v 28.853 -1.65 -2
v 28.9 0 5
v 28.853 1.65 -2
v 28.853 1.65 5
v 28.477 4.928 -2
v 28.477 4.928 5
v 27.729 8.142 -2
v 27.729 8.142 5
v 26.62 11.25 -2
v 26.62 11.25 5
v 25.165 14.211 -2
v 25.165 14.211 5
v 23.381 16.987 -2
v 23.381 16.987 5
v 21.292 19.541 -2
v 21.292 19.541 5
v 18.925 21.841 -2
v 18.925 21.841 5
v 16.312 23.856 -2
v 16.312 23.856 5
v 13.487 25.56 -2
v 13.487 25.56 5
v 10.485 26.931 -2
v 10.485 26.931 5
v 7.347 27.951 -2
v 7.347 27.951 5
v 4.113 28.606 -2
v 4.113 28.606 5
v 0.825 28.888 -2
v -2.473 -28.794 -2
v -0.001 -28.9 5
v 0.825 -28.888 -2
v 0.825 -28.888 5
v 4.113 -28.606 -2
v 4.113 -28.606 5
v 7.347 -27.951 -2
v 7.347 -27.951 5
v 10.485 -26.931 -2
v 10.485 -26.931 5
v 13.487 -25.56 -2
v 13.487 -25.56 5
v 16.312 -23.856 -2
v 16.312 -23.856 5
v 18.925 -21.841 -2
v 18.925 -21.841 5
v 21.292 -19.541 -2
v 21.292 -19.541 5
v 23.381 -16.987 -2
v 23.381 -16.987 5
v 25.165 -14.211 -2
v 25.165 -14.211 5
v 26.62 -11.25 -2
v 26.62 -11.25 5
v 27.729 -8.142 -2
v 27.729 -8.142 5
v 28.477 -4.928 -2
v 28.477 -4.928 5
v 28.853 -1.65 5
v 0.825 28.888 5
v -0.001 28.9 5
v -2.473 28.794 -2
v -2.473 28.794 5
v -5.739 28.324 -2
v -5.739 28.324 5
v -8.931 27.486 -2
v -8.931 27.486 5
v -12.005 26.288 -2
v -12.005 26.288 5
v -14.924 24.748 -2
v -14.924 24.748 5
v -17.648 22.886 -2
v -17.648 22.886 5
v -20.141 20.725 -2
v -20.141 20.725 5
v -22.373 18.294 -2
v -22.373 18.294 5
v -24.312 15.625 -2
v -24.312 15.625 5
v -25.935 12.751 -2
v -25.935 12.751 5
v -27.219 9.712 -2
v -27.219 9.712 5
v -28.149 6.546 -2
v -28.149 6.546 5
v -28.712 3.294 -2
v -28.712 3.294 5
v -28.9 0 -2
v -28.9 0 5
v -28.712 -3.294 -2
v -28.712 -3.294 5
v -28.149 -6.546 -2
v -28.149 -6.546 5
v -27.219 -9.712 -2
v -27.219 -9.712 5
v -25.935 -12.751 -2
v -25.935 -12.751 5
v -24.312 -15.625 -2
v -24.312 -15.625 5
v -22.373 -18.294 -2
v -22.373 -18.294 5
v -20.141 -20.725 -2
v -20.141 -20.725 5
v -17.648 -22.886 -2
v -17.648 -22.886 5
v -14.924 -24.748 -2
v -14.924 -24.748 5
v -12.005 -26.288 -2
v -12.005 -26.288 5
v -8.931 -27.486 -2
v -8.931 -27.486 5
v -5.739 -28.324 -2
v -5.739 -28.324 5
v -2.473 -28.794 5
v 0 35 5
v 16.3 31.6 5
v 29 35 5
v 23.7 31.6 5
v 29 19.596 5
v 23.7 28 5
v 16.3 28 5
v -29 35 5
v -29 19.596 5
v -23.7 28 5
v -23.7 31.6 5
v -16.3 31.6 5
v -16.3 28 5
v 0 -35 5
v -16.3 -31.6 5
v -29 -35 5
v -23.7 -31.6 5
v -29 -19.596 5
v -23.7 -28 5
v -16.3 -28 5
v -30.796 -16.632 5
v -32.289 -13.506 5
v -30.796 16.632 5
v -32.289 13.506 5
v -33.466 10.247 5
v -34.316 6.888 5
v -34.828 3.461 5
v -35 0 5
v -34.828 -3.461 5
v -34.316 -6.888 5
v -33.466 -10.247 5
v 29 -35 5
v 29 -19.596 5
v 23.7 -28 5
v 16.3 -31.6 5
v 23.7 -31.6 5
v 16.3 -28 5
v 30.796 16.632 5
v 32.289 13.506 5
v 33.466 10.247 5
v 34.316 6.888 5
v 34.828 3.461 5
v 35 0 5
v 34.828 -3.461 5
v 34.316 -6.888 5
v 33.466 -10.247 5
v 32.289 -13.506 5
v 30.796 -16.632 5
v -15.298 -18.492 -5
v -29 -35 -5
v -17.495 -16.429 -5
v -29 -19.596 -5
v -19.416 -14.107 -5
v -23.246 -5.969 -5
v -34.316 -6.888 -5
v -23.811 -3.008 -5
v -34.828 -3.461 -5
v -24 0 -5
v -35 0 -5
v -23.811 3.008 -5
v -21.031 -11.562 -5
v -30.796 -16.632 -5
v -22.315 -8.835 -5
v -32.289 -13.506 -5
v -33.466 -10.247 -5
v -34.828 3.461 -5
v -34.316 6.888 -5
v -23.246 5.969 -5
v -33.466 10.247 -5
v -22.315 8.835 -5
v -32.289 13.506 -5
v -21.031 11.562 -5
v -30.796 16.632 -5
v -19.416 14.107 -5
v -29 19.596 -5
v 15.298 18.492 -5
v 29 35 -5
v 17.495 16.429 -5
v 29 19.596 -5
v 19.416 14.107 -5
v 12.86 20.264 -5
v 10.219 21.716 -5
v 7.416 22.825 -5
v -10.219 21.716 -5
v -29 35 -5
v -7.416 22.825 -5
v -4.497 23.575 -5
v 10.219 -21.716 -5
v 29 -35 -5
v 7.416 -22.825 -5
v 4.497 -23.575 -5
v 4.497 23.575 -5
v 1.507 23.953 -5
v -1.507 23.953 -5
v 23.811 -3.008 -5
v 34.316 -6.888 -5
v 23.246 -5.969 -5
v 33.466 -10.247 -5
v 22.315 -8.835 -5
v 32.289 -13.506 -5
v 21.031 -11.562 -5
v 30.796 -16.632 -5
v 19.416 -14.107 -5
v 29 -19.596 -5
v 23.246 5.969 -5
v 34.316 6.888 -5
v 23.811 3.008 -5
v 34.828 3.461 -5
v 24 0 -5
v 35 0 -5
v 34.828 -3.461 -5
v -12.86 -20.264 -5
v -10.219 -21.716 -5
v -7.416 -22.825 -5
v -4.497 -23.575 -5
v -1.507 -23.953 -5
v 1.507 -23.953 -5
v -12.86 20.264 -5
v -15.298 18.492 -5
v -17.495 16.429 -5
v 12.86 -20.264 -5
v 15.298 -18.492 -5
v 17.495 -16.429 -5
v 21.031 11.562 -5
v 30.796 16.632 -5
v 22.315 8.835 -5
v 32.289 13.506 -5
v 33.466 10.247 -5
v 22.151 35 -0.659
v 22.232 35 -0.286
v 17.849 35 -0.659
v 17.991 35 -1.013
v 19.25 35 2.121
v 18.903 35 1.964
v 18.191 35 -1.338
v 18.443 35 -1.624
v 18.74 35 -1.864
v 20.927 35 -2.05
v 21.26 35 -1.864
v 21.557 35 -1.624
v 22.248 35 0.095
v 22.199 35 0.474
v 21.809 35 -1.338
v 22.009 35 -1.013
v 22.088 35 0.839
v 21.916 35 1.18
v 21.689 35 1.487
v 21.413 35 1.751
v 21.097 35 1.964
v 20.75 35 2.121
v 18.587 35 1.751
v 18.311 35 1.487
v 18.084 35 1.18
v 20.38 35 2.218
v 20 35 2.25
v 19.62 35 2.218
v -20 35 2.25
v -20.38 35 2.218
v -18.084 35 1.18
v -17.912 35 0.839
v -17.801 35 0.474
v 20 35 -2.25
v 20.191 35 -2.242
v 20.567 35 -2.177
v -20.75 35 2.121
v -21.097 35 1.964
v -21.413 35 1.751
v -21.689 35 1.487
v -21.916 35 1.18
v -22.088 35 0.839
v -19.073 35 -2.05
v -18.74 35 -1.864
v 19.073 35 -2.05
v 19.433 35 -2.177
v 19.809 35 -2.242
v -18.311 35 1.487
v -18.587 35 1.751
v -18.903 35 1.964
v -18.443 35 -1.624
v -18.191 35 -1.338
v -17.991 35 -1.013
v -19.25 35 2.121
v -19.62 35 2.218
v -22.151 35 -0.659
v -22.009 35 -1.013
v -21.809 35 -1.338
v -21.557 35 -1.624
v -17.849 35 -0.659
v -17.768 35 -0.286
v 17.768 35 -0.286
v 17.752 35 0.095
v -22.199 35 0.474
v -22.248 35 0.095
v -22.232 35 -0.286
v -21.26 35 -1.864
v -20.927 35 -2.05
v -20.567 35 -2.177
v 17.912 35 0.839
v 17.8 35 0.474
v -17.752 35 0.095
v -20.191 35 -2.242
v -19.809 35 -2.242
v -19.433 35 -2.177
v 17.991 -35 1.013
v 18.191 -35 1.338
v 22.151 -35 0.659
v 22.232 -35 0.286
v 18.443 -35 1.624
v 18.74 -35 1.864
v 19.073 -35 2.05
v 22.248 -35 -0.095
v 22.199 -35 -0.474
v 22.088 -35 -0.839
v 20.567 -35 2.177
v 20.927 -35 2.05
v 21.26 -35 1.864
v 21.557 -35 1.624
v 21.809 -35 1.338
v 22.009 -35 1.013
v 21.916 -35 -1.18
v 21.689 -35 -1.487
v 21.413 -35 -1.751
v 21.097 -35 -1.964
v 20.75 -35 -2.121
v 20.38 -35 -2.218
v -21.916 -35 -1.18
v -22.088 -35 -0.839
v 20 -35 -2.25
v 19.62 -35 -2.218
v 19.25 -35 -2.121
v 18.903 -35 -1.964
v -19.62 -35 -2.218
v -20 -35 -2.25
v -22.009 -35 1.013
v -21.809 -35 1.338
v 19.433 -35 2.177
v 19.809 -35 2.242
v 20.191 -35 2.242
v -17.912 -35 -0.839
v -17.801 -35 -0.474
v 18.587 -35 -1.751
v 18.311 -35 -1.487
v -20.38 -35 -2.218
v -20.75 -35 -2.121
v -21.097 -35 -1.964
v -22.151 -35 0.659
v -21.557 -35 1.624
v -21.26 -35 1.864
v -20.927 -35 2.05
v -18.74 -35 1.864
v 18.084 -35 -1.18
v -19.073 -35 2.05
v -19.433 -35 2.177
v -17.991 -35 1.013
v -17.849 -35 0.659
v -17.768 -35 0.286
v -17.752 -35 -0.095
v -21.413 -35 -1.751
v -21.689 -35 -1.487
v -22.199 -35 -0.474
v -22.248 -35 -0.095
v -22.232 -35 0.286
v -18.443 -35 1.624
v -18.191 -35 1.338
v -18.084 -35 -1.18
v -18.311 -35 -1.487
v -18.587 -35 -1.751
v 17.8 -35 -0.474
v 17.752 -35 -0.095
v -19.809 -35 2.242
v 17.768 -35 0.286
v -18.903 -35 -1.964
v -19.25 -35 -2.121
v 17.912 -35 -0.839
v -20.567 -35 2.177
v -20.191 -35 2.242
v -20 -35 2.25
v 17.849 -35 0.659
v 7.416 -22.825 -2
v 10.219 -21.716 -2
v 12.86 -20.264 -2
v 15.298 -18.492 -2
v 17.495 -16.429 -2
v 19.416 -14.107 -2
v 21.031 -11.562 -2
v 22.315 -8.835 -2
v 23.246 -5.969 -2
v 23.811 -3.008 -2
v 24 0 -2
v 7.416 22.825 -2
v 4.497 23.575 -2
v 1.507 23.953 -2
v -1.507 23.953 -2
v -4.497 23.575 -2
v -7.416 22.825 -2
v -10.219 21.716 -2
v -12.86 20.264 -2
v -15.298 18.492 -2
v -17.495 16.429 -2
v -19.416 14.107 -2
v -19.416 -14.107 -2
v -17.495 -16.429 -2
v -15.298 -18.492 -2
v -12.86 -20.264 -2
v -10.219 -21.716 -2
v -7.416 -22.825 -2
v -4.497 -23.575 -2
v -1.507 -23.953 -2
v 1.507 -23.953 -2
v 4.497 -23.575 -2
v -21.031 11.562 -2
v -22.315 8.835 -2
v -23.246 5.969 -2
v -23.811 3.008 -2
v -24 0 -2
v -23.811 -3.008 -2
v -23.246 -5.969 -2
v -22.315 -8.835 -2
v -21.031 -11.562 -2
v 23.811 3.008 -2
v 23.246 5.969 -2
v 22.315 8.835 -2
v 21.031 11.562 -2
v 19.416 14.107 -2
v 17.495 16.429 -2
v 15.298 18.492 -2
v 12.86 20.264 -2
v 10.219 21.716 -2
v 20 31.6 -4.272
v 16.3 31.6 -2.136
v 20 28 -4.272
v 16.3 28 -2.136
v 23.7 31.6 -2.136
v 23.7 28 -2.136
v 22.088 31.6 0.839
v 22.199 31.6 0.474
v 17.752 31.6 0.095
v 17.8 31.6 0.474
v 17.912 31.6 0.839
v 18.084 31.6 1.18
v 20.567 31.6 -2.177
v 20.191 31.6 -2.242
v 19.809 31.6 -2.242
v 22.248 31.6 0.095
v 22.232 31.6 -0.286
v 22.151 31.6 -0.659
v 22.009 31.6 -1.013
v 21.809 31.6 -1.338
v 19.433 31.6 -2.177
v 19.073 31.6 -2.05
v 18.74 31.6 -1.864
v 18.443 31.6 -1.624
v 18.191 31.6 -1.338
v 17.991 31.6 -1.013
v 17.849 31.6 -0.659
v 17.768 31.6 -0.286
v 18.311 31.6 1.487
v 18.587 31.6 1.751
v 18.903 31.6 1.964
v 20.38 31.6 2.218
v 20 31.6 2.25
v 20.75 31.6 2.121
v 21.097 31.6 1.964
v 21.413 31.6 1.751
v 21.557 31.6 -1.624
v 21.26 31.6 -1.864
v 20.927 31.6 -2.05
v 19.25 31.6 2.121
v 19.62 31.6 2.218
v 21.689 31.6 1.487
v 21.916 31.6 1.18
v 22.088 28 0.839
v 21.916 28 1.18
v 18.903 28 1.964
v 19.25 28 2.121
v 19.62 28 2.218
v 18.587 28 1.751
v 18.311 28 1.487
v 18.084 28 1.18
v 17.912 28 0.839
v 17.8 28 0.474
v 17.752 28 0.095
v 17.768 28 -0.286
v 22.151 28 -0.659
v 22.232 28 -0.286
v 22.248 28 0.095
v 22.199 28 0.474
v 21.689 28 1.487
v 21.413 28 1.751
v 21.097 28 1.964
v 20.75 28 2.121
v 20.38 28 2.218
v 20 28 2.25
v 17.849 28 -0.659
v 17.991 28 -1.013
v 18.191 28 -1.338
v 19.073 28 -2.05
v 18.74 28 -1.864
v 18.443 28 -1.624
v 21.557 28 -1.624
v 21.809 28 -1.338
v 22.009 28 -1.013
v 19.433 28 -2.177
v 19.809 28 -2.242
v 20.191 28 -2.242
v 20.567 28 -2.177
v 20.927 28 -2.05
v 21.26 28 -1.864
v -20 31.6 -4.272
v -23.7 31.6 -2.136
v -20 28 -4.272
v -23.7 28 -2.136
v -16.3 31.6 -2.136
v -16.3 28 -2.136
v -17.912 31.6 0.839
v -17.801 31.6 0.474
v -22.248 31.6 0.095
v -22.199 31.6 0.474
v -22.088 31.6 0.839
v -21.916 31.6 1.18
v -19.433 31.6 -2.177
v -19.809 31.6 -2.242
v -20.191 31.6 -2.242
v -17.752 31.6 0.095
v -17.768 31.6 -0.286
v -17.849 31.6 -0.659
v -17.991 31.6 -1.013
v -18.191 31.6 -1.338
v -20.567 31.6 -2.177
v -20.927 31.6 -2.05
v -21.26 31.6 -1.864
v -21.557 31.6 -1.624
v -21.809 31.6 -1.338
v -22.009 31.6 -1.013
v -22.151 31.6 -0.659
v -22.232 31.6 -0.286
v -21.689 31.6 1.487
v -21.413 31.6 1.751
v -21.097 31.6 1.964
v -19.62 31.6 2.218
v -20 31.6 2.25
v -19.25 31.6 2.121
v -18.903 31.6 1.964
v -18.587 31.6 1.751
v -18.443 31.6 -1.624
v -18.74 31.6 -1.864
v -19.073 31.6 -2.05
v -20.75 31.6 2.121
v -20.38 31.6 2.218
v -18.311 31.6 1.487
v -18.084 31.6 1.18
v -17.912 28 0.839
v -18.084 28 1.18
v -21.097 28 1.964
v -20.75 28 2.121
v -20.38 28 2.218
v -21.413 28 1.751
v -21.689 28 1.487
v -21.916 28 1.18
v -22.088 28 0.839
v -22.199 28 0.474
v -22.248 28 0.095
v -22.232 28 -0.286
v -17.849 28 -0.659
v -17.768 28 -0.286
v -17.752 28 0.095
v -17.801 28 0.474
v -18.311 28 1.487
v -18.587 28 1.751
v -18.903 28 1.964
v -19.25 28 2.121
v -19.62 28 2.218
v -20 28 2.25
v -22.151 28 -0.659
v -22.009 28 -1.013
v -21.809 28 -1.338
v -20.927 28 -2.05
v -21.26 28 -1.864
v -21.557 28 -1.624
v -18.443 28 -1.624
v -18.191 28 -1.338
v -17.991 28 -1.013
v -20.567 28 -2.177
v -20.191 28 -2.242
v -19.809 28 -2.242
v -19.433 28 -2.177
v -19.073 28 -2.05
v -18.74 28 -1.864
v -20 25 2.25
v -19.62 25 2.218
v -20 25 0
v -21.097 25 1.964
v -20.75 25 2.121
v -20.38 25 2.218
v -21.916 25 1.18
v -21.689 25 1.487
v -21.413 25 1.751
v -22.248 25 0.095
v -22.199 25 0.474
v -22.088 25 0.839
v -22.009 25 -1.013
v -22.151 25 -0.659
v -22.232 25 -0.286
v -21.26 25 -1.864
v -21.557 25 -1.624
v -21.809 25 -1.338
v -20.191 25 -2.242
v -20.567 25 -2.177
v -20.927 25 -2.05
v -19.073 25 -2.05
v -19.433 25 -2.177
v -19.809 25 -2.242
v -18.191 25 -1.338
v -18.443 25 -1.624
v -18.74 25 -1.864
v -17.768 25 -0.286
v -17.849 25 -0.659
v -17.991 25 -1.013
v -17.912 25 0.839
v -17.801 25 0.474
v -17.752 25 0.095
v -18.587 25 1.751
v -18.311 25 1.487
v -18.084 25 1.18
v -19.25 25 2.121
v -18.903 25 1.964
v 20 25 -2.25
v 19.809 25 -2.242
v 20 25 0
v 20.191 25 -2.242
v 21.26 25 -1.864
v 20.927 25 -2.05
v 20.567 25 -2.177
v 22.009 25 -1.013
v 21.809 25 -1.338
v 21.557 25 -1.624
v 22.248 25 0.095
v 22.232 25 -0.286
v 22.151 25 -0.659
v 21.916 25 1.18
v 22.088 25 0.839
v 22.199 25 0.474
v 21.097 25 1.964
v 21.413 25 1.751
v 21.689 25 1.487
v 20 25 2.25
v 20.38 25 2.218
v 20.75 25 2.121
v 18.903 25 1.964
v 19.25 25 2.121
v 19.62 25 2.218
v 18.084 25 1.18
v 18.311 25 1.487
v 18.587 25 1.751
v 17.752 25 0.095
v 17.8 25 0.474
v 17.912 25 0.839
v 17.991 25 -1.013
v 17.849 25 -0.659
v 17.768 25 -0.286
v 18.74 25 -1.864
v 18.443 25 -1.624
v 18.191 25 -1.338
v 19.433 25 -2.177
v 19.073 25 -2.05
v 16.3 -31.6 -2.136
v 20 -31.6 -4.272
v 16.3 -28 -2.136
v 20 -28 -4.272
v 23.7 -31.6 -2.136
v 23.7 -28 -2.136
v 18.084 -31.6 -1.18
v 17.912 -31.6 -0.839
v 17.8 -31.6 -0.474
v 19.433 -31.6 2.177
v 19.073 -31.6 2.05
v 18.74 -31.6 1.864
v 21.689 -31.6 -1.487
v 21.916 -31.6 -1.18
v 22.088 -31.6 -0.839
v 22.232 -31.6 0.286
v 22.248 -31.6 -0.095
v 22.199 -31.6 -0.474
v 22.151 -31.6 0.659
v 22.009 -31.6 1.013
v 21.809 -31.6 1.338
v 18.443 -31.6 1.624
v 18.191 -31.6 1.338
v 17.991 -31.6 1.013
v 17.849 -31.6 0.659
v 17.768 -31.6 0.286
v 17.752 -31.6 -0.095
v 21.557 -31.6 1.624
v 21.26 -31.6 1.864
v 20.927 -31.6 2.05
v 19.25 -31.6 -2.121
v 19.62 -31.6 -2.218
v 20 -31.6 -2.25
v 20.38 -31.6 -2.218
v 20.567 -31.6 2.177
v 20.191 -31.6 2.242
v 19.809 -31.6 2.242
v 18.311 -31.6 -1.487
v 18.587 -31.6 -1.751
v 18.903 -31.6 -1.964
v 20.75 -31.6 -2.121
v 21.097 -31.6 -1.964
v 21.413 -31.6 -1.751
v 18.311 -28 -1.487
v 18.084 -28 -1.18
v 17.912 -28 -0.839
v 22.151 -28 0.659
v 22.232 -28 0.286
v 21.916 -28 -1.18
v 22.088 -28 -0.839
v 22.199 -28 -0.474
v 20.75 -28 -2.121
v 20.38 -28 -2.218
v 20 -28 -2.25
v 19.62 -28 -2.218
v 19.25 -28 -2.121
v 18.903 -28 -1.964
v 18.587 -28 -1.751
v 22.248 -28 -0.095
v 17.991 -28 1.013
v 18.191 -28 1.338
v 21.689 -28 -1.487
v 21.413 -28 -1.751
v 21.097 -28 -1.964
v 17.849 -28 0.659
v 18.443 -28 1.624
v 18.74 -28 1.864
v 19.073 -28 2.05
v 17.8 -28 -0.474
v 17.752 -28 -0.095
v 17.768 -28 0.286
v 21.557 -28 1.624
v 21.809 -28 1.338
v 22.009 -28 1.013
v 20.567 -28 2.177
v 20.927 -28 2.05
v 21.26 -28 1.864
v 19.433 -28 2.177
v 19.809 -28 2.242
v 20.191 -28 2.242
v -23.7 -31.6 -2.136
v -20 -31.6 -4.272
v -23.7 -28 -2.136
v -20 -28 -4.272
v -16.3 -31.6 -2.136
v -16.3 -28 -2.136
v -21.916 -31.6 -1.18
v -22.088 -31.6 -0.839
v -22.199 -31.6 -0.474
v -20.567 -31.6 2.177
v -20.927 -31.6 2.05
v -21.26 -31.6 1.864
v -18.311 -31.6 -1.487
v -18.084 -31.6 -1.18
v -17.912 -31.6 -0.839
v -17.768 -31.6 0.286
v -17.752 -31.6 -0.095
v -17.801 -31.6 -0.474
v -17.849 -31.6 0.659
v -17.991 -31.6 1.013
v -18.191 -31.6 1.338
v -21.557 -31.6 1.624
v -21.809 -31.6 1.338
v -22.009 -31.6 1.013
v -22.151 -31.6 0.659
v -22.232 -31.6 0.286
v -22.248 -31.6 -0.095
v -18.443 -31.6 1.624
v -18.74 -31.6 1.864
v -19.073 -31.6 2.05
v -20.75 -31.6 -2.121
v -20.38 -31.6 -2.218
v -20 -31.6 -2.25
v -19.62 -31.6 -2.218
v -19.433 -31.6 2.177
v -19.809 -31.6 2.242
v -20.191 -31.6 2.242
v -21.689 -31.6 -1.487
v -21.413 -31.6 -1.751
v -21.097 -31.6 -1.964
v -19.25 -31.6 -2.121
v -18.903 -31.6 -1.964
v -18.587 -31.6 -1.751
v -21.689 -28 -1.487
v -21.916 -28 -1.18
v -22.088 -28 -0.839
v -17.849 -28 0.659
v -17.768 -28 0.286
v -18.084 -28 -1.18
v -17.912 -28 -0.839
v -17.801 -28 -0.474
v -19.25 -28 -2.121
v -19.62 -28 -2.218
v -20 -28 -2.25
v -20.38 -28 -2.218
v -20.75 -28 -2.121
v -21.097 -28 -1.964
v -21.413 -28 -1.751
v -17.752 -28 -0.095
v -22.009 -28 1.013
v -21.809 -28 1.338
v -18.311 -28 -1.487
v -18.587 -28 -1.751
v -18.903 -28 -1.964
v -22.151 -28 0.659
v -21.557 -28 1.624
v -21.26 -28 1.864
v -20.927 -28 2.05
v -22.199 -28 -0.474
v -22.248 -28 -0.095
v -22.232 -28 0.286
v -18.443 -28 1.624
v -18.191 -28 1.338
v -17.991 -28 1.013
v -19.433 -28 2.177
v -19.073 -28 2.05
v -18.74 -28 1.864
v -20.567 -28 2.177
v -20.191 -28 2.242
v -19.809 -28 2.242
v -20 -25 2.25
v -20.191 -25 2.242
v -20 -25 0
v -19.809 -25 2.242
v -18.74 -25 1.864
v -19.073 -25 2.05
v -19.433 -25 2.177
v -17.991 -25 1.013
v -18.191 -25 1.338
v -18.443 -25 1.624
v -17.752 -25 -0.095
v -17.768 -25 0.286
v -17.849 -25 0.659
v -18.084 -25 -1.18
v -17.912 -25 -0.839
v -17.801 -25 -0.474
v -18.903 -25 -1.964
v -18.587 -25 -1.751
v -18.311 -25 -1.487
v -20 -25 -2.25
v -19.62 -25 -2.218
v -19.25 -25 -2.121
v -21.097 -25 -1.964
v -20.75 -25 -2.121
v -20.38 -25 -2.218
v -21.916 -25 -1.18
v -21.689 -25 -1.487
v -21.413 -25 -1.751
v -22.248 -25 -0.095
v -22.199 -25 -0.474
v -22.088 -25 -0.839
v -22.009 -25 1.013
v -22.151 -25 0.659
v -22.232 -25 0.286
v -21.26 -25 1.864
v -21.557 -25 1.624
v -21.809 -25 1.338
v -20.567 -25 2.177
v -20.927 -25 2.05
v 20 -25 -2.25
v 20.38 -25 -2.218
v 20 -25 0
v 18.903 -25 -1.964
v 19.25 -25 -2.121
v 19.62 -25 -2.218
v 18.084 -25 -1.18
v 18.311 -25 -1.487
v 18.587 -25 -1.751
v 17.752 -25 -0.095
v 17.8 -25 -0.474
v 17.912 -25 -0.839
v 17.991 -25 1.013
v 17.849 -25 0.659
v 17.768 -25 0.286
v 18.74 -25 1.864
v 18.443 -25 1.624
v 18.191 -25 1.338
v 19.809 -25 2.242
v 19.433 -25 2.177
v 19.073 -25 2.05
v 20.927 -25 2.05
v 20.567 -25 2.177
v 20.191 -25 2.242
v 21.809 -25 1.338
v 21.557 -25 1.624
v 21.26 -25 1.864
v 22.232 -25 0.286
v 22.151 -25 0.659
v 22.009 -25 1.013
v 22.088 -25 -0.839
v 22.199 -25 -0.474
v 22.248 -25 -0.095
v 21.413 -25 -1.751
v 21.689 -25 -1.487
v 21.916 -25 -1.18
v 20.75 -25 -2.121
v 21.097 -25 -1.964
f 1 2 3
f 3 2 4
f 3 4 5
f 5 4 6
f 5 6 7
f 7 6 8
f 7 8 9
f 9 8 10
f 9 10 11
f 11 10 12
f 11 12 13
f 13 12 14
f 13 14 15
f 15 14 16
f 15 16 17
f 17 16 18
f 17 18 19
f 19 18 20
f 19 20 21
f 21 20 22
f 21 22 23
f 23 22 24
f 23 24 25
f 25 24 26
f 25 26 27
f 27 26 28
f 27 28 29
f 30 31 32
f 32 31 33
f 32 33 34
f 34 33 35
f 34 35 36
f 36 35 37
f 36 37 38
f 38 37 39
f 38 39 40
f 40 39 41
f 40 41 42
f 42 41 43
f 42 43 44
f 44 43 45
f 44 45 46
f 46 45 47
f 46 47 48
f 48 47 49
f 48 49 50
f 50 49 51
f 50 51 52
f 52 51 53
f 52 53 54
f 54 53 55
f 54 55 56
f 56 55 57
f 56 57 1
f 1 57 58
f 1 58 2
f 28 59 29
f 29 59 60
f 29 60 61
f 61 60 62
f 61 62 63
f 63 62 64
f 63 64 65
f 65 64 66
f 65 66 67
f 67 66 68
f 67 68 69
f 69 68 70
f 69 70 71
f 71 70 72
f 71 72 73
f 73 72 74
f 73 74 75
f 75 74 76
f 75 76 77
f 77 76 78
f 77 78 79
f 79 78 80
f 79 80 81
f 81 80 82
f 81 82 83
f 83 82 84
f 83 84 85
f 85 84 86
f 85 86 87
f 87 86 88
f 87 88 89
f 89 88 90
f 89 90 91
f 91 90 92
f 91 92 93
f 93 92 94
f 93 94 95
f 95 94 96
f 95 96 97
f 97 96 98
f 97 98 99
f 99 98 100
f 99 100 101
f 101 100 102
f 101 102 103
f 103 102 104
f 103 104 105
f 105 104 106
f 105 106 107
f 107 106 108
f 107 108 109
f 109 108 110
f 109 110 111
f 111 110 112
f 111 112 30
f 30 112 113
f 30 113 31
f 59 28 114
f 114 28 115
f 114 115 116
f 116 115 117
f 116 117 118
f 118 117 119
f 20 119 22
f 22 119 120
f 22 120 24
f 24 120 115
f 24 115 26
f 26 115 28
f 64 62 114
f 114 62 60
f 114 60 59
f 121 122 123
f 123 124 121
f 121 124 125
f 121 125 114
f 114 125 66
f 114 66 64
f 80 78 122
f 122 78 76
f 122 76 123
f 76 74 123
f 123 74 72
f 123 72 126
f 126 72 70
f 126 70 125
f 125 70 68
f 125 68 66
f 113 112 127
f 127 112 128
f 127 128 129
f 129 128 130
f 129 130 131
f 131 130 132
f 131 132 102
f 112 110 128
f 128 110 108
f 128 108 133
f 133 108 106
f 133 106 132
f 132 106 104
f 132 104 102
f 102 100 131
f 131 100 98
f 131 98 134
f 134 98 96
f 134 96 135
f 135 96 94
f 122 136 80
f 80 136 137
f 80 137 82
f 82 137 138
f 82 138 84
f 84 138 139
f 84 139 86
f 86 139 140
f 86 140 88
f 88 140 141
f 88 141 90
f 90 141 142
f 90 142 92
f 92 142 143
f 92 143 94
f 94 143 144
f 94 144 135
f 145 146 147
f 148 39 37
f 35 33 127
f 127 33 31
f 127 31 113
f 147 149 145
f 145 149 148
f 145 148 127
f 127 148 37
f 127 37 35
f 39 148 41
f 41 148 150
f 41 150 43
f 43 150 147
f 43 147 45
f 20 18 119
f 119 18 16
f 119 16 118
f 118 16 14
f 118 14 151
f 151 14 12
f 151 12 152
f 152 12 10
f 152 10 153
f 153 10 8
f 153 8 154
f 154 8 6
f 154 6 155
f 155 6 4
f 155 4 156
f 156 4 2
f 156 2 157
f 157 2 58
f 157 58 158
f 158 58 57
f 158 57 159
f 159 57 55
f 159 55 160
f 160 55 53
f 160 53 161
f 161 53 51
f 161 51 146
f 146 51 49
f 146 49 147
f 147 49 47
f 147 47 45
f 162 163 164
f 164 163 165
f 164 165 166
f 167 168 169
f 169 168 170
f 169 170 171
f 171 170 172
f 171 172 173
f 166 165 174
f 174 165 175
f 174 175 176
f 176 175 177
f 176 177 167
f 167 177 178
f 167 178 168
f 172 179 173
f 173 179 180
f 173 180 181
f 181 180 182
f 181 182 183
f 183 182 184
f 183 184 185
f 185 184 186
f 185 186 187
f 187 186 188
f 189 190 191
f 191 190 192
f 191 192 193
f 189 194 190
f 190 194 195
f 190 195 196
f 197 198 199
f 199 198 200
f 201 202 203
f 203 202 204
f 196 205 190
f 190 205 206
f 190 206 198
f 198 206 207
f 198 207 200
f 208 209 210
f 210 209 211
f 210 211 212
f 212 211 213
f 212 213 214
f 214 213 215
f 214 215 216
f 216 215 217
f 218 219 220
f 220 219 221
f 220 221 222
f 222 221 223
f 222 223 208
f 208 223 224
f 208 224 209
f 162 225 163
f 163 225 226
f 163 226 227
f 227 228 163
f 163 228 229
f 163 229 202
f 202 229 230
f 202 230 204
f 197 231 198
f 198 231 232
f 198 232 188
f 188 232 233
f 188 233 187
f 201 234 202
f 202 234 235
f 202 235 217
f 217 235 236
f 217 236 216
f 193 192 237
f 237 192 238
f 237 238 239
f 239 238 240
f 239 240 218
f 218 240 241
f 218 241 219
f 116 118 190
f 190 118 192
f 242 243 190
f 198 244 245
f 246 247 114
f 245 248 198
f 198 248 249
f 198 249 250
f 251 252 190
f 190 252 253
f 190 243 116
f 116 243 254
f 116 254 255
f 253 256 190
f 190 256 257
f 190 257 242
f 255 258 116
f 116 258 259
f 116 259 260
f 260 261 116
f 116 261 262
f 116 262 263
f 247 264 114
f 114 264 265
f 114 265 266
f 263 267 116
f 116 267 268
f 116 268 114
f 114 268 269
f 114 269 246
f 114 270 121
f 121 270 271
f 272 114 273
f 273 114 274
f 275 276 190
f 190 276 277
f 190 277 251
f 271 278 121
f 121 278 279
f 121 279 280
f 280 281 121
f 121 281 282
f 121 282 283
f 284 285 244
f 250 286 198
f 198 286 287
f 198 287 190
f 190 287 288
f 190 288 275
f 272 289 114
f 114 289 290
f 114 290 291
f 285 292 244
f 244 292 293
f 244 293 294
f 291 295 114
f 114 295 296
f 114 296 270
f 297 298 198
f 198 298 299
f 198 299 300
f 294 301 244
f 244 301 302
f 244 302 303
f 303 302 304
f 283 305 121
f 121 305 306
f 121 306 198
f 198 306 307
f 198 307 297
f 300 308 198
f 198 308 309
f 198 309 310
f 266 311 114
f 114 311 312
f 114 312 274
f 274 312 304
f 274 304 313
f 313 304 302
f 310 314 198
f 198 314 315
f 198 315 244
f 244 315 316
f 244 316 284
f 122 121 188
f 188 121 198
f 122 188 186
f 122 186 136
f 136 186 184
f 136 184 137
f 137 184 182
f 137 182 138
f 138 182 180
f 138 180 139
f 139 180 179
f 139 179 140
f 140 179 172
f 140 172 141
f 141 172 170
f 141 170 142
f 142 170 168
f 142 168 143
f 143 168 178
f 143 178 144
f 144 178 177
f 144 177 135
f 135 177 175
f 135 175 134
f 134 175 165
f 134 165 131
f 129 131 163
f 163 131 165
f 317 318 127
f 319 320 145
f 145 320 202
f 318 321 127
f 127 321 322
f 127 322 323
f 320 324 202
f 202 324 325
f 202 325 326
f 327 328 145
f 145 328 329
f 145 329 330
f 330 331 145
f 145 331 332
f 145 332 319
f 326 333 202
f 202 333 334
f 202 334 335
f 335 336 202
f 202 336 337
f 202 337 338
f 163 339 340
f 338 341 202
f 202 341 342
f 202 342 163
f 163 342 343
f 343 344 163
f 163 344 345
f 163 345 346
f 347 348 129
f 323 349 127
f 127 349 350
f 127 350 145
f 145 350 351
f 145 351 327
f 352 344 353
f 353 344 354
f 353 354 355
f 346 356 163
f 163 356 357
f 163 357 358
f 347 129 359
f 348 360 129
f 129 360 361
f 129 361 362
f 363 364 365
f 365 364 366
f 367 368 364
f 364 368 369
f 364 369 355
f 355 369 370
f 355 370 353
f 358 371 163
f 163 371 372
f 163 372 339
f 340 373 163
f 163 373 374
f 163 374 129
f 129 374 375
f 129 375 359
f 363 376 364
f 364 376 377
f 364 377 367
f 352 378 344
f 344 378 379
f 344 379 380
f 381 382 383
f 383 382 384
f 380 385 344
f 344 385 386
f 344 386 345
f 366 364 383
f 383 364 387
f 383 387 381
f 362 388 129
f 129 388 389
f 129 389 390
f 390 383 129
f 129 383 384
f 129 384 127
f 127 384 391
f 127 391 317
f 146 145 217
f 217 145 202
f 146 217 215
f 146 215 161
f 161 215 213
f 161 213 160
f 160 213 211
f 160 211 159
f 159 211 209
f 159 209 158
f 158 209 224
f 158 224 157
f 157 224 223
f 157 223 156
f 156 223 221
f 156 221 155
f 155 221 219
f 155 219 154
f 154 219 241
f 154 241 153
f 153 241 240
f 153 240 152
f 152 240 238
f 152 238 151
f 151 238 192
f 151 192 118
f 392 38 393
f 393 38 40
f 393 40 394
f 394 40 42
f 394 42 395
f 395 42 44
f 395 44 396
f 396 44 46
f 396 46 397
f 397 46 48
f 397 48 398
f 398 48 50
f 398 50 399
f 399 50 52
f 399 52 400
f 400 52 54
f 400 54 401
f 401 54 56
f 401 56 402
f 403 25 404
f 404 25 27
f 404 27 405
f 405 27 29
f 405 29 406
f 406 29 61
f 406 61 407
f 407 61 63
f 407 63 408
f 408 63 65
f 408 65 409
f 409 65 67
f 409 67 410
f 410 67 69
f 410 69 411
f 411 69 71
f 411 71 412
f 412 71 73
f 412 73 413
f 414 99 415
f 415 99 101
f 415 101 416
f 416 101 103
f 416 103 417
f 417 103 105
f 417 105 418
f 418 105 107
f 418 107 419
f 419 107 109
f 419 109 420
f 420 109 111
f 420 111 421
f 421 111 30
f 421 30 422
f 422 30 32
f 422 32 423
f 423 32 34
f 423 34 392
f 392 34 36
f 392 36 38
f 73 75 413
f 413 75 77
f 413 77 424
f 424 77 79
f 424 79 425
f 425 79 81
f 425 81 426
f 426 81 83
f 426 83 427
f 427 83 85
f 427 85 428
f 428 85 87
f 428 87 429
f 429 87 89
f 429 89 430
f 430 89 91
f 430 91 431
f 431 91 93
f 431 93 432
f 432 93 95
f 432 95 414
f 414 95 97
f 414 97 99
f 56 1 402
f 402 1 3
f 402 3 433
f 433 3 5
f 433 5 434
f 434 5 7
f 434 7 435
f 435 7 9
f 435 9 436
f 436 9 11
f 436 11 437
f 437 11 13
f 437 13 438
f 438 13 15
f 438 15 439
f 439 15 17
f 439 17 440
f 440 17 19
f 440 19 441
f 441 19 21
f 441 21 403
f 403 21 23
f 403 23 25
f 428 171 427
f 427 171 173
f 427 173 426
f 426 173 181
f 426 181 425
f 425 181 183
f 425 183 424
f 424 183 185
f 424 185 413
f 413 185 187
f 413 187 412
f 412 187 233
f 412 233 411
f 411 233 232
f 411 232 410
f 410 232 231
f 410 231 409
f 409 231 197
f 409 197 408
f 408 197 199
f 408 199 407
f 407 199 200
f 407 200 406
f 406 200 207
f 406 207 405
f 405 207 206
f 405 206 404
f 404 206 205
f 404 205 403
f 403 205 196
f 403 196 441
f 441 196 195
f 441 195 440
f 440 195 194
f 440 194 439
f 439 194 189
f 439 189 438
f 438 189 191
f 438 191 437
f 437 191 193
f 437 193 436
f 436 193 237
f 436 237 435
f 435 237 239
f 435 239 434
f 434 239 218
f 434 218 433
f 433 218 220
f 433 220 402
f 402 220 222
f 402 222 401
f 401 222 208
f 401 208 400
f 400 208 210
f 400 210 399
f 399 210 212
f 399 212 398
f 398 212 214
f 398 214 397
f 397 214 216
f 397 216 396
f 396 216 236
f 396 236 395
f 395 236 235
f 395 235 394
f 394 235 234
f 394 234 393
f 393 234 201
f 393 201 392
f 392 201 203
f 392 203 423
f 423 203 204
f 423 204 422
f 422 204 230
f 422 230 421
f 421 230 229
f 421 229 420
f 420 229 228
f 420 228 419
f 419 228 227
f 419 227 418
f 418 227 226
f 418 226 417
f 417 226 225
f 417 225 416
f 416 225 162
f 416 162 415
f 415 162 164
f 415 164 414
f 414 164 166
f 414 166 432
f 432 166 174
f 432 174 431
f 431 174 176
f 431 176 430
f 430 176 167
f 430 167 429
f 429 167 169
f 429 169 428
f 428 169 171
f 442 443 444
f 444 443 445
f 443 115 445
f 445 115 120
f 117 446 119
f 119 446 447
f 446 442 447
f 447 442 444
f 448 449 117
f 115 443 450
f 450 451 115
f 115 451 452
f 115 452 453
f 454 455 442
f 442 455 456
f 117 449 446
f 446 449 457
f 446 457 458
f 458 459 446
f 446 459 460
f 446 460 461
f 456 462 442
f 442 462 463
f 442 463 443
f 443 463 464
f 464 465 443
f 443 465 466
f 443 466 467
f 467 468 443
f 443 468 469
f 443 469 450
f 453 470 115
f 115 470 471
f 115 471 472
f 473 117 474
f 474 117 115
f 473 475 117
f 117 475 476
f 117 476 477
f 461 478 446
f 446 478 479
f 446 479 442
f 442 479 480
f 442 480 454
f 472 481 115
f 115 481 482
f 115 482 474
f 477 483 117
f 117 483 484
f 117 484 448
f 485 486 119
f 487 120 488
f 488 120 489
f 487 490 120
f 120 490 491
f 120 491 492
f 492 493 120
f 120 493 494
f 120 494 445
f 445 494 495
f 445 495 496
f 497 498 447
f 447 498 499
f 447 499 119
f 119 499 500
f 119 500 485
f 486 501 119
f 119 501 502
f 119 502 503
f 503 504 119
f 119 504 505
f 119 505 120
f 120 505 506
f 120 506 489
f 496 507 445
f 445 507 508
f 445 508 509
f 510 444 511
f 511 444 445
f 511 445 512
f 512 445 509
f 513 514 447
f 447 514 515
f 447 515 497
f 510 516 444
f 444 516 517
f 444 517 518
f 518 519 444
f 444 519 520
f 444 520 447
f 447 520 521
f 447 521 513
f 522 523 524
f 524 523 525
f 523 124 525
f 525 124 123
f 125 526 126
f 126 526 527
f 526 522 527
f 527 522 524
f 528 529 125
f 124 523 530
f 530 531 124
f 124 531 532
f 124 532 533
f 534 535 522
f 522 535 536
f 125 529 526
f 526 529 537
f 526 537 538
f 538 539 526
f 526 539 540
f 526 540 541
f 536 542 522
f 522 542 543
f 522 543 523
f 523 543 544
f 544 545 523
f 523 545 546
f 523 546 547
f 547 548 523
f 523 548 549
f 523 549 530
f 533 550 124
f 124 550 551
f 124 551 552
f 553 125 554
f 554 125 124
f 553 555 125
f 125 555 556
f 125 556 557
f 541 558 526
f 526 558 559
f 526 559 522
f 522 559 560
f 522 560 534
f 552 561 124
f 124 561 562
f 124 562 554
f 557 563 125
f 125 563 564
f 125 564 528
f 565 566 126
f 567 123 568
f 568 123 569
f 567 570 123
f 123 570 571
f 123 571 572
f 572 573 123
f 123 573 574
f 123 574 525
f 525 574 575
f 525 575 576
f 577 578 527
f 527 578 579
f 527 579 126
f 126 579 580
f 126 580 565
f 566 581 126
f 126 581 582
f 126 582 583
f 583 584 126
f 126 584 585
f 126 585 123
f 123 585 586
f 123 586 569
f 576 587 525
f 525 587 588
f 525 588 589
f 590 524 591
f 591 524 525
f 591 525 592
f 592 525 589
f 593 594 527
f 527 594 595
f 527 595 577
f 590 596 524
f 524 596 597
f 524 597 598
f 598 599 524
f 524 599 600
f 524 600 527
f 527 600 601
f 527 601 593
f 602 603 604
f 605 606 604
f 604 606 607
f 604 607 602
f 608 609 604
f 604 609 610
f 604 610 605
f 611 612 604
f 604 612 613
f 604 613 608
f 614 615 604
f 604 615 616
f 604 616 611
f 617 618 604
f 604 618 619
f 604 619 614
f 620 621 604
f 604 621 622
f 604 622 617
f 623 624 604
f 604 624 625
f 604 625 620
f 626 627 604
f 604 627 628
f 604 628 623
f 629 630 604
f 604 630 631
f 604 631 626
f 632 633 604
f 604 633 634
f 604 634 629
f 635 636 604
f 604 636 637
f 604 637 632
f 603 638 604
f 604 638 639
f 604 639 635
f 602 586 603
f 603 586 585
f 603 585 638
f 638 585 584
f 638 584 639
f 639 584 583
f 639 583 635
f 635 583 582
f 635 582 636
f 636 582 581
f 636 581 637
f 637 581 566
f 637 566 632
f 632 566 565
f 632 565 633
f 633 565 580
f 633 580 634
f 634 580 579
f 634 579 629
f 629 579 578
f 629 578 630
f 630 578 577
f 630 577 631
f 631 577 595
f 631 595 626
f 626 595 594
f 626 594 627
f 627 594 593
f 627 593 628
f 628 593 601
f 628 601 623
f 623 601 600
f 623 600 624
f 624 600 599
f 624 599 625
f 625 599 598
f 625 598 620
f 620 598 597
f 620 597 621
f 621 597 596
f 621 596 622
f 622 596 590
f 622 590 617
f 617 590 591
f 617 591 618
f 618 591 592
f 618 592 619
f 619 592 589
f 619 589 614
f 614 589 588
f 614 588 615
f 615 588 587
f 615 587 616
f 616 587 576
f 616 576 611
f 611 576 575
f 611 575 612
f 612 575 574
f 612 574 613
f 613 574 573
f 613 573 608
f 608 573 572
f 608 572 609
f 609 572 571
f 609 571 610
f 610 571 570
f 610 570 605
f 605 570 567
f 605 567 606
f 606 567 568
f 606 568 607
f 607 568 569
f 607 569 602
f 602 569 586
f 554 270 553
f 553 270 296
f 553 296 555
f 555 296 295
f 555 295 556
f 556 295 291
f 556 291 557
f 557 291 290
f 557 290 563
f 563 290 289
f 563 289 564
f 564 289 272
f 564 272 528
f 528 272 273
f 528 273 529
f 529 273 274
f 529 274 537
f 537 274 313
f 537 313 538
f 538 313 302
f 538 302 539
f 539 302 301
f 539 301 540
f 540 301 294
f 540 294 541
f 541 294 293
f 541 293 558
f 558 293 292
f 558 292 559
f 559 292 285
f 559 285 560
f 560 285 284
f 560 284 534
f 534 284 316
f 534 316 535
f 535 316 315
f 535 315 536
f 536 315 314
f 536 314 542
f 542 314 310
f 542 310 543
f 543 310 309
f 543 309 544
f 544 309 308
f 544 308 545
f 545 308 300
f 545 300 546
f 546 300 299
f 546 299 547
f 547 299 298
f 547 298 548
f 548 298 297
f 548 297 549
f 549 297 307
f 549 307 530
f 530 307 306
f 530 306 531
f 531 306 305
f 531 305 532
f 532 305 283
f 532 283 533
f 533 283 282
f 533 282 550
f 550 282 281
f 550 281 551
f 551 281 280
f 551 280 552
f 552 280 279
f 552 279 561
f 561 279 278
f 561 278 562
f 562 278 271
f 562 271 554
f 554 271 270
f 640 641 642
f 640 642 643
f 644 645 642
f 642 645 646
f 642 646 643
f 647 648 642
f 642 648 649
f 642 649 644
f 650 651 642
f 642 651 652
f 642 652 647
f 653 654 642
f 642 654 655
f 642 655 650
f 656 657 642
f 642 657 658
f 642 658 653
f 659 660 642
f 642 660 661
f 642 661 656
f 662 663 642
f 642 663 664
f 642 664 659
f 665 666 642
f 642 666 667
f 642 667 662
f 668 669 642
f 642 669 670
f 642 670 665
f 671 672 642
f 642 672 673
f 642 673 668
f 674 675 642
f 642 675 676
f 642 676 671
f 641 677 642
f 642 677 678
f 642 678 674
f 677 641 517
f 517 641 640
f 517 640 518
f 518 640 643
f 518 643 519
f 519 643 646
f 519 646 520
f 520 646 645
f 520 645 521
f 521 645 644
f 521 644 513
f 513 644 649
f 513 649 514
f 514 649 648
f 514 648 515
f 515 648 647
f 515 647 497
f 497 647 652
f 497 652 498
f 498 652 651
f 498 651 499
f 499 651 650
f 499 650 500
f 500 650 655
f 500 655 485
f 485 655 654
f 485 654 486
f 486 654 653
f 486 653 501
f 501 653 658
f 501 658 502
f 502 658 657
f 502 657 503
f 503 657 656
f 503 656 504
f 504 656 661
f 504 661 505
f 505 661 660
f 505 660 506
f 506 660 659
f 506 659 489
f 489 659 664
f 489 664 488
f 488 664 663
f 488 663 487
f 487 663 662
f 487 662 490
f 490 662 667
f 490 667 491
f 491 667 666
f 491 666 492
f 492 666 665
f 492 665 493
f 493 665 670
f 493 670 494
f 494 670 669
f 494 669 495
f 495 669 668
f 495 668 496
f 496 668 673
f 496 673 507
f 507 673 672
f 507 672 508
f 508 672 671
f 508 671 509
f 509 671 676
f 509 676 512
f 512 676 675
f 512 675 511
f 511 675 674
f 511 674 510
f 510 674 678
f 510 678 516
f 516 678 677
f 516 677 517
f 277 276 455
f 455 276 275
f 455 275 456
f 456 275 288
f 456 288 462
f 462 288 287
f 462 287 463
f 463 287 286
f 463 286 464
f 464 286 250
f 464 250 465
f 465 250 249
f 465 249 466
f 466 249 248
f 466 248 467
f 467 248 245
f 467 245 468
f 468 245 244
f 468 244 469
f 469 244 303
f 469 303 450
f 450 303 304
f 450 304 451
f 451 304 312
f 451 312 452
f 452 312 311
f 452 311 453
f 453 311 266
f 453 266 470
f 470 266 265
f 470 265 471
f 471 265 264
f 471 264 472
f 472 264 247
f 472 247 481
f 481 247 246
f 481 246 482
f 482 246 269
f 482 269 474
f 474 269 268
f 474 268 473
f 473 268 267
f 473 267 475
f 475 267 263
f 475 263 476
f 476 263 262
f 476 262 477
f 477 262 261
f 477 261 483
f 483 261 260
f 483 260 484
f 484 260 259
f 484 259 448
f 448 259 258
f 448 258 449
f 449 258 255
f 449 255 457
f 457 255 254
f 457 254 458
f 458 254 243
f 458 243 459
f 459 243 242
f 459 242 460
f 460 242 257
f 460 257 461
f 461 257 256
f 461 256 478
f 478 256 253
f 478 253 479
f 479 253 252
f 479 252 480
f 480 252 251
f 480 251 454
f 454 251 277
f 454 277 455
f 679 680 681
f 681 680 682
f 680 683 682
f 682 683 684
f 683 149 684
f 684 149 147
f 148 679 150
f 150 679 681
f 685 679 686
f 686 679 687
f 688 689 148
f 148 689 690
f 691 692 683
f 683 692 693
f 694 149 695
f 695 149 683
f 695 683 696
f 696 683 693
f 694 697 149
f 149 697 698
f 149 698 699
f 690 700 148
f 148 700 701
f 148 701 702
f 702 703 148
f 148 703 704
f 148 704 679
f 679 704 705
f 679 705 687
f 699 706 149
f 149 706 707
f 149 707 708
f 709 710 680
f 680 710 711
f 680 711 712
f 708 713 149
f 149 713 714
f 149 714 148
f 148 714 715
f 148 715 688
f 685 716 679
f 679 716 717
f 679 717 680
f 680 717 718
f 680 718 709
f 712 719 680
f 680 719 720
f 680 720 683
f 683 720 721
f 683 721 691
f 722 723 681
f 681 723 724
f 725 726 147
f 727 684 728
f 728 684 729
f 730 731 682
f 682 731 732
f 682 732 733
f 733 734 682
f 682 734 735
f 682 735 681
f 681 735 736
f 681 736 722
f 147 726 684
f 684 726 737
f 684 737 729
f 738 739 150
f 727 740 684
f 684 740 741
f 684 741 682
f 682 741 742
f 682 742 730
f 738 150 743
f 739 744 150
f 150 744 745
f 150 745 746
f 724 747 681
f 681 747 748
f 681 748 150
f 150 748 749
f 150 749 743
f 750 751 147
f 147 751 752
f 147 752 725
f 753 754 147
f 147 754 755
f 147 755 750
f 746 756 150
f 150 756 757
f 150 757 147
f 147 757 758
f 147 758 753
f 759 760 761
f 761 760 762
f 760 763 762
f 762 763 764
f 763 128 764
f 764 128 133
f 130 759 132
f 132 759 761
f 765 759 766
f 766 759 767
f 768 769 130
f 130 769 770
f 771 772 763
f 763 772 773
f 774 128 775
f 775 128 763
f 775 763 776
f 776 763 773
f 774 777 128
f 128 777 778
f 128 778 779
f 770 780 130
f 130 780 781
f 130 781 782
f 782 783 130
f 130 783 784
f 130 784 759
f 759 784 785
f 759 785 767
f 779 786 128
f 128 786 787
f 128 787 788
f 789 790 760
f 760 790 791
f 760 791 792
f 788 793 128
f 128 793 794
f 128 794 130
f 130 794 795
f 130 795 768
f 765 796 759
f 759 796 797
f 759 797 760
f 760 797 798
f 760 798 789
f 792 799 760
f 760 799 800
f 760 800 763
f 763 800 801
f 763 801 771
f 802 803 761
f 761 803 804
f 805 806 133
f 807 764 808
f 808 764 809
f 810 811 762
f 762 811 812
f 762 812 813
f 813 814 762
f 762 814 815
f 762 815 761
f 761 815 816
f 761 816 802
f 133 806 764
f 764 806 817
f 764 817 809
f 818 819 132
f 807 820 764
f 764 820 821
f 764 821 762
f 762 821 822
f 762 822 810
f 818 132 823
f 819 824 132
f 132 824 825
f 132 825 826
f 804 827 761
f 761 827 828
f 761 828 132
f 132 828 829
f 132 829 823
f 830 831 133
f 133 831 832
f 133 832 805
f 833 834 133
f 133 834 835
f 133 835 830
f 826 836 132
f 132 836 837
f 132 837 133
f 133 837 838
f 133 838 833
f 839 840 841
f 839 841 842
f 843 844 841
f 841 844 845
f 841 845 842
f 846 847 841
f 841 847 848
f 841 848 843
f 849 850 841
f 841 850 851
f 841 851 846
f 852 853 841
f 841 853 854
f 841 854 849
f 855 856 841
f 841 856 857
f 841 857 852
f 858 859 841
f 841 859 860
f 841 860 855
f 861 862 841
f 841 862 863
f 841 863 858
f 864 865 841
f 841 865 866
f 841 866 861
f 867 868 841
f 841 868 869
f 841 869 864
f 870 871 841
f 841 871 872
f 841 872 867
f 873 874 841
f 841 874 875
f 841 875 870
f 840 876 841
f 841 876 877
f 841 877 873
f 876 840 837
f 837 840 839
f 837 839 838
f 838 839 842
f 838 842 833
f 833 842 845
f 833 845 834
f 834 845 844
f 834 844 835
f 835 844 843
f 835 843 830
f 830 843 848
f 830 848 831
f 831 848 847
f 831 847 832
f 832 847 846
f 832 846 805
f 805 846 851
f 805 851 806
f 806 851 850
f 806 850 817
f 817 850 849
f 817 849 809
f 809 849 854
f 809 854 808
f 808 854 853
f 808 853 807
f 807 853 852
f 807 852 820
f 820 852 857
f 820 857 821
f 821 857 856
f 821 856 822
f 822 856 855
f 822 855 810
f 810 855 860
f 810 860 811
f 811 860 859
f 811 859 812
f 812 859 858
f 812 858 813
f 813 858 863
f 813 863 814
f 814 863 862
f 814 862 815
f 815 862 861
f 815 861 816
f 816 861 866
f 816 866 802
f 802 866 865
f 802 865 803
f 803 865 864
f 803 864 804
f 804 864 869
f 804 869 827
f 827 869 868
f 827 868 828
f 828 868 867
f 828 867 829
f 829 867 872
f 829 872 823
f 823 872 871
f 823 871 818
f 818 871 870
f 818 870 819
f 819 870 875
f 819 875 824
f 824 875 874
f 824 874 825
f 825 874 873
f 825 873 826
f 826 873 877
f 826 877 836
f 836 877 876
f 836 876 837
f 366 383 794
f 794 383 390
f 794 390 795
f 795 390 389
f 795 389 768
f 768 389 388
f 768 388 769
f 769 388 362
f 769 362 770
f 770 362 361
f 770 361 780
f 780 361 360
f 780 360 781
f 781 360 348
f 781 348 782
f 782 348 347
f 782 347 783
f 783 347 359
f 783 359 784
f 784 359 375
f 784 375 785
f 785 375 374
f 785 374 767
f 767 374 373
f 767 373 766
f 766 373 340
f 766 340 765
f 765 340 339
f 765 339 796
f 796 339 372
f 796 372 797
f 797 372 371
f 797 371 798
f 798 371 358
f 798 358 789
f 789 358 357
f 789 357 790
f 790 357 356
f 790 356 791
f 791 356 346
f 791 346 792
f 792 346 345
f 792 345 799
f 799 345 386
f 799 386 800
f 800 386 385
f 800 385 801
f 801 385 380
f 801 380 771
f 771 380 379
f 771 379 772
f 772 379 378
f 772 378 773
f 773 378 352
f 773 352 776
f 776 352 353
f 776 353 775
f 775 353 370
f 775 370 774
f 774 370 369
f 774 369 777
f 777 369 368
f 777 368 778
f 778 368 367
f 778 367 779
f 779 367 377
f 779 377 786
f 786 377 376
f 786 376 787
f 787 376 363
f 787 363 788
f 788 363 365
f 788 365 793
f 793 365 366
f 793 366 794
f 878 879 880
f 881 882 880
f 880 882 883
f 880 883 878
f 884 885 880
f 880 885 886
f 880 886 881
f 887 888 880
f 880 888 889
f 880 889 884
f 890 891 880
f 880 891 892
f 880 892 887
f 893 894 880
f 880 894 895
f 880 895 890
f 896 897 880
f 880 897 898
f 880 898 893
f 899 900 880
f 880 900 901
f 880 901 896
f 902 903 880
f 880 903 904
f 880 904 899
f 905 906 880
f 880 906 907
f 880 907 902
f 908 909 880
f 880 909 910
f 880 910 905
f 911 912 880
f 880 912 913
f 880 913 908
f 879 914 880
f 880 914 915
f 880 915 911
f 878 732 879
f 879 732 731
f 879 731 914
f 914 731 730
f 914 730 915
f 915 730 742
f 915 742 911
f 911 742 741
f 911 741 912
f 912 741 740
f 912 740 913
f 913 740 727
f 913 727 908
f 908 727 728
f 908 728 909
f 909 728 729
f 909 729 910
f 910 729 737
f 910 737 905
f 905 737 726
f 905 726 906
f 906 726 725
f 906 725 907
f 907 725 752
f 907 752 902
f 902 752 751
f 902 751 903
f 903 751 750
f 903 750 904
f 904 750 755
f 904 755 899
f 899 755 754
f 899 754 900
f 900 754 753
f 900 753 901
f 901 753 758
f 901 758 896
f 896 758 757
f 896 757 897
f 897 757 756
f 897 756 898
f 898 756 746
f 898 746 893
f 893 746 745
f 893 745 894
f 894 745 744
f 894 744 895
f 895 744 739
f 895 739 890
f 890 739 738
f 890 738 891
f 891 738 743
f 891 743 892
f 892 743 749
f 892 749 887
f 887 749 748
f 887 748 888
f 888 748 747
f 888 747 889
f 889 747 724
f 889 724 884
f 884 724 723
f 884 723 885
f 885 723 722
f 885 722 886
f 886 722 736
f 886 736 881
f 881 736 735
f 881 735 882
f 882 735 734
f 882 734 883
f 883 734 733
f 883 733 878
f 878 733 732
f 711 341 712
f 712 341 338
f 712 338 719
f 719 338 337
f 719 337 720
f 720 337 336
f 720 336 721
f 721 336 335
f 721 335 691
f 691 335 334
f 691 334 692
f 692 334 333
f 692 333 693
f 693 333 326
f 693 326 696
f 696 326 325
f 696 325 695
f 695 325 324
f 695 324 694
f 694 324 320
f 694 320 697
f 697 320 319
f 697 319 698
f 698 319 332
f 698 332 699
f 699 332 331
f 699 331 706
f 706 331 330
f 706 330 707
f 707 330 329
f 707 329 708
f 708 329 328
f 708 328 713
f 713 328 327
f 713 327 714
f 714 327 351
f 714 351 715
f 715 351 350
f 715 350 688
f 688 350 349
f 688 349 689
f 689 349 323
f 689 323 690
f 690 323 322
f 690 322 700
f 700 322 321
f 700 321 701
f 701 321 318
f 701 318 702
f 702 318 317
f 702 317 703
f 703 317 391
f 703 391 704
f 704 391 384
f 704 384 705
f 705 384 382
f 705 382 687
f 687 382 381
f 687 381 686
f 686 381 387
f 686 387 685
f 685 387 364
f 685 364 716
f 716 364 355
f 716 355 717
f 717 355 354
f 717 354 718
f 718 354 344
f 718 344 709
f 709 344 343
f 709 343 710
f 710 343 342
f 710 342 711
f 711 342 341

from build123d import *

# Parameters (mm, degrees)
CROQUIS1_R              = 28.9
SALIENTE_EXTRUIR1_DEPTH = 5
CROQUIS2_R              = 28.9
CROQUIS2_R_2            = 24
SALIENTE_EXTRUIR2_DEPTH = 3
CORTAR_EXTRUIR1_DEPTH   = 3.6
CROQUIS6_R              = 2.25
CORTAR_EXTRUIR2_DEPTH   = 10


with BuildPart() as part:
    # Croquis1 → Saliente-Extruir1 (new, symmetric)
    with BuildSketch(Plane.XY):
        with BuildLine():
            Line((-29, 19.595917942), (-29, 35))
            Line((-29, 35), (29, 35))
            Line((29, 35), (29, 19.595917942))
            ThreePointArc((29, 19.595917942), (35, 0), (29, -19.595917942))
            Line((29, -19.595917942), (29, -35))
            Line((29, -35), (-29, -35))
            Line((-29, -35), (-29, -19.595917942))
            ThreePointArc((-29, -19.595917942), (-35, 0), (-29, 19.595917942))
        make_face()
        Circle(CROQUIS1_R, mode=Mode.SUBTRACT)
    extrude(amount=SALIENTE_EXTRUIR1_DEPTH, both=True)

    # Croquis2 → Saliente-Extruir2 (add)
    with BuildSketch(Plane(origin=(0, 0, -5), x_dir=(-1, 0, 0), z_dir=(0, 0, -1))):
        Circle(CROQUIS2_R)
        Circle(CROQUIS2_R_2, mode=Mode.SUBTRACT)
    extrude(amount=-SALIENTE_EXTRUIR2_DEPTH)

    # Croquis5 → Cortar-Extruir1 (cut)
    with BuildSketch(Plane(origin=(0, 28, 0), x_dir=(1, 0, 0), z_dir=(0, 1, 0))):
        Polygon((-23.7, -2.136195996), (-23.7, -5), (-16.3, -5), (-16.3, -2.136195996), (-16.3, 2.136195996), (-20, 4.272391992), (-23.7, 2.136195996), align=None)
        Polygon((16.3, 2.136195996), (16.3, -2.136195996), (16.3, -5), (23.7, -5), (23.7, -2.136195996), (23.7, 2.136195996), (20, 4.272391992), align=None)
    cortar_extruir1 = extrude(amount=CORTAR_EXTRUIR1_DEPTH, mode=Mode.SUBTRACT)

    # Croquis6 → Cortar-Extruir2 (cut)
    with BuildSketch(Plane(origin=(0, 35, 0), x_dir=(1, 0, 0), z_dir=(0, 1, 0))):
        with Locations(Location((-20, 0, 0), (0, 0, 270))):
            Circle(CROQUIS6_R)
        with Locations(Location((20, 0, 0), (0, 0, 270))):
            Circle(CROQUIS6_R)
    cortar_extruir2 = extrude(amount=-CORTAR_EXTRUIR2_DEPTH, mode=Mode.SUBTRACT)

    # Simetría1: Cortar-Extruir1, Cortar-Extruir2 across plane
    add(cortar_extruir1.mirror(Plane.ZX), mode=Mode.SUBTRACT)
    add(cortar_extruir2.mirror(Plane.ZX), mode=Mode.SUBTRACT)


solid = part.part
